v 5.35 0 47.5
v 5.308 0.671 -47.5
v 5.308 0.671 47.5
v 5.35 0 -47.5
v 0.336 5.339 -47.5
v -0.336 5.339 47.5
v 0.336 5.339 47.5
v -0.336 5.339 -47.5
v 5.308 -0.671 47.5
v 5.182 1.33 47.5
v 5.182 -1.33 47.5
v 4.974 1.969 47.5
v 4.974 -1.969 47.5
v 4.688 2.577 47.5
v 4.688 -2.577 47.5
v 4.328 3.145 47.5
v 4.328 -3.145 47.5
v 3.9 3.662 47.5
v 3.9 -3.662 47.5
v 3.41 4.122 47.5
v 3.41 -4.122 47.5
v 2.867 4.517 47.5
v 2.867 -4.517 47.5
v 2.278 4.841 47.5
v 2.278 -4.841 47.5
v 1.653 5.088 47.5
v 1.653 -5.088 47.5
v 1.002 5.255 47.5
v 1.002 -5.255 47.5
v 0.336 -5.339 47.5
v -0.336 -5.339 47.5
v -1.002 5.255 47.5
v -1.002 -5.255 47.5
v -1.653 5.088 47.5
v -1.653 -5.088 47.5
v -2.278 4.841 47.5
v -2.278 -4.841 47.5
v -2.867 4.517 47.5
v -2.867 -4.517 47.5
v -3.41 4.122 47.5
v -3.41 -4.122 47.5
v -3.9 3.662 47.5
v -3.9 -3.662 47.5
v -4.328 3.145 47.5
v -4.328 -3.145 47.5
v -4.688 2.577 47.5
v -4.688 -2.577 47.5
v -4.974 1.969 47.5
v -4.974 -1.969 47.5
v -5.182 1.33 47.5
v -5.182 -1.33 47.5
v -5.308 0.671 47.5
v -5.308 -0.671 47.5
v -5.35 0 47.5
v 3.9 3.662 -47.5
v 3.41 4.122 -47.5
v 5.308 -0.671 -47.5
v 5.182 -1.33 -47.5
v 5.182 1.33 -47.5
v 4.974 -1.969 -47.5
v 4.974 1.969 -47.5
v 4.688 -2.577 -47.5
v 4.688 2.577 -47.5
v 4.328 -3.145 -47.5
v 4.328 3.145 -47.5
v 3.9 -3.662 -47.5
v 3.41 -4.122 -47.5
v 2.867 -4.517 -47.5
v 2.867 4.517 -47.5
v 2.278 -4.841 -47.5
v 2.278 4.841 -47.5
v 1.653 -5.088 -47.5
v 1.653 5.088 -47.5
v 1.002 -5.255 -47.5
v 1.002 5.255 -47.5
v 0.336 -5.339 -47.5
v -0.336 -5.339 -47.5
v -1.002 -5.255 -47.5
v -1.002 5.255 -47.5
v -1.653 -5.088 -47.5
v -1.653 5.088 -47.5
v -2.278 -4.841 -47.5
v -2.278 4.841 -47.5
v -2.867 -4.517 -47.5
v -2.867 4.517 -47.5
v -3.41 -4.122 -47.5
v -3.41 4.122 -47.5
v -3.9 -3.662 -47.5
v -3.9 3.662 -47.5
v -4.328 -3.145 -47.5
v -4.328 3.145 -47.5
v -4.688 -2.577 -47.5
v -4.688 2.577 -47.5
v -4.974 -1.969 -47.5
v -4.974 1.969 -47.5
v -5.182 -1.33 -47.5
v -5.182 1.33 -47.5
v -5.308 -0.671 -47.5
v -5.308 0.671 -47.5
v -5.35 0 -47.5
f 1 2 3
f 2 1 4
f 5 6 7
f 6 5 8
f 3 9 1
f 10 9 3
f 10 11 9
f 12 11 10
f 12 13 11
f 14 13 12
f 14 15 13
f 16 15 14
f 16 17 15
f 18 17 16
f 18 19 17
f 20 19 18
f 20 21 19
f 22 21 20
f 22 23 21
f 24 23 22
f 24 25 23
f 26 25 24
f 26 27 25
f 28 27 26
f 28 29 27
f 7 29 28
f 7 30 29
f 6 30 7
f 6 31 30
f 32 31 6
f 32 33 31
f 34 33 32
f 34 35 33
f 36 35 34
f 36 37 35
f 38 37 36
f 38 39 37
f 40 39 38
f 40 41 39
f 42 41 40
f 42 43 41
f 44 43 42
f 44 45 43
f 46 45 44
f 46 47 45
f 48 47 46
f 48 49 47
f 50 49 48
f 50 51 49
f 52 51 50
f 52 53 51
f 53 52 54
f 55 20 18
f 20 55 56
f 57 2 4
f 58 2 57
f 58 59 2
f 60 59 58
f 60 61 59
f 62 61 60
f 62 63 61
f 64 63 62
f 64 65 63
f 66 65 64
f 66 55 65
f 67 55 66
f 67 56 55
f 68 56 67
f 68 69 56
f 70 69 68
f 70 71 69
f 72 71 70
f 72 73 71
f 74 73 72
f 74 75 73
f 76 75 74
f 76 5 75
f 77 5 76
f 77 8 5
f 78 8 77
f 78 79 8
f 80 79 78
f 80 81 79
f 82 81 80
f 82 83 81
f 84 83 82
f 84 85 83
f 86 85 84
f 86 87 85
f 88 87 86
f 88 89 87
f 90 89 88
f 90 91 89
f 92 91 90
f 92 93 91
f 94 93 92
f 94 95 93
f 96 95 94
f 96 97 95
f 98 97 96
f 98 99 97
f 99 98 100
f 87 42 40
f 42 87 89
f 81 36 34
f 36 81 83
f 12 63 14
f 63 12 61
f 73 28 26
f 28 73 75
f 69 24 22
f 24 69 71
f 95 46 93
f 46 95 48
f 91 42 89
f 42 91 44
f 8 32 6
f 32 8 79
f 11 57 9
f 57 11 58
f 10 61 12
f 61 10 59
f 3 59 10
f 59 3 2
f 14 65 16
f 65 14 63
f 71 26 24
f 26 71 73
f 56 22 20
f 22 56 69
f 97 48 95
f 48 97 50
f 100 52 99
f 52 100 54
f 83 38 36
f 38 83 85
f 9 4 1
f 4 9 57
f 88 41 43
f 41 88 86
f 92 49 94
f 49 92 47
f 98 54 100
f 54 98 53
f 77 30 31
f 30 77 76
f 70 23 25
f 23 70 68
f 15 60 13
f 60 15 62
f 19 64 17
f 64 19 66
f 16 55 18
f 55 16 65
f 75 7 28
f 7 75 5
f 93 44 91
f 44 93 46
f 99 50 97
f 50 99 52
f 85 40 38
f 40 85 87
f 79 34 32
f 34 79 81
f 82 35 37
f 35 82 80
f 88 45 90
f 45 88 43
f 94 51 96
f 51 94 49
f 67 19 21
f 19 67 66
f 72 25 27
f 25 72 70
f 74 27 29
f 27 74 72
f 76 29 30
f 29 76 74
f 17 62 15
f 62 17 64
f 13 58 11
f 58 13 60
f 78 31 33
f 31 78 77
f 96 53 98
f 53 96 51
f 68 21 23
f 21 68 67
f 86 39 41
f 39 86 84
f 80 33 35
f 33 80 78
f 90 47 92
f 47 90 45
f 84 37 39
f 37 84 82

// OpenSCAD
$fn = 50;


difference() {
	union() {
		translate(v = [0, 0, -47.5000000000]) {
			cylinder(h = 95, r = 5.3500000000);
		}
	}
	union() {
		translate(v = [0, 0, -100.0000000000]) {
			cylinder(h = 200, r = 0);
		}
	}
}
